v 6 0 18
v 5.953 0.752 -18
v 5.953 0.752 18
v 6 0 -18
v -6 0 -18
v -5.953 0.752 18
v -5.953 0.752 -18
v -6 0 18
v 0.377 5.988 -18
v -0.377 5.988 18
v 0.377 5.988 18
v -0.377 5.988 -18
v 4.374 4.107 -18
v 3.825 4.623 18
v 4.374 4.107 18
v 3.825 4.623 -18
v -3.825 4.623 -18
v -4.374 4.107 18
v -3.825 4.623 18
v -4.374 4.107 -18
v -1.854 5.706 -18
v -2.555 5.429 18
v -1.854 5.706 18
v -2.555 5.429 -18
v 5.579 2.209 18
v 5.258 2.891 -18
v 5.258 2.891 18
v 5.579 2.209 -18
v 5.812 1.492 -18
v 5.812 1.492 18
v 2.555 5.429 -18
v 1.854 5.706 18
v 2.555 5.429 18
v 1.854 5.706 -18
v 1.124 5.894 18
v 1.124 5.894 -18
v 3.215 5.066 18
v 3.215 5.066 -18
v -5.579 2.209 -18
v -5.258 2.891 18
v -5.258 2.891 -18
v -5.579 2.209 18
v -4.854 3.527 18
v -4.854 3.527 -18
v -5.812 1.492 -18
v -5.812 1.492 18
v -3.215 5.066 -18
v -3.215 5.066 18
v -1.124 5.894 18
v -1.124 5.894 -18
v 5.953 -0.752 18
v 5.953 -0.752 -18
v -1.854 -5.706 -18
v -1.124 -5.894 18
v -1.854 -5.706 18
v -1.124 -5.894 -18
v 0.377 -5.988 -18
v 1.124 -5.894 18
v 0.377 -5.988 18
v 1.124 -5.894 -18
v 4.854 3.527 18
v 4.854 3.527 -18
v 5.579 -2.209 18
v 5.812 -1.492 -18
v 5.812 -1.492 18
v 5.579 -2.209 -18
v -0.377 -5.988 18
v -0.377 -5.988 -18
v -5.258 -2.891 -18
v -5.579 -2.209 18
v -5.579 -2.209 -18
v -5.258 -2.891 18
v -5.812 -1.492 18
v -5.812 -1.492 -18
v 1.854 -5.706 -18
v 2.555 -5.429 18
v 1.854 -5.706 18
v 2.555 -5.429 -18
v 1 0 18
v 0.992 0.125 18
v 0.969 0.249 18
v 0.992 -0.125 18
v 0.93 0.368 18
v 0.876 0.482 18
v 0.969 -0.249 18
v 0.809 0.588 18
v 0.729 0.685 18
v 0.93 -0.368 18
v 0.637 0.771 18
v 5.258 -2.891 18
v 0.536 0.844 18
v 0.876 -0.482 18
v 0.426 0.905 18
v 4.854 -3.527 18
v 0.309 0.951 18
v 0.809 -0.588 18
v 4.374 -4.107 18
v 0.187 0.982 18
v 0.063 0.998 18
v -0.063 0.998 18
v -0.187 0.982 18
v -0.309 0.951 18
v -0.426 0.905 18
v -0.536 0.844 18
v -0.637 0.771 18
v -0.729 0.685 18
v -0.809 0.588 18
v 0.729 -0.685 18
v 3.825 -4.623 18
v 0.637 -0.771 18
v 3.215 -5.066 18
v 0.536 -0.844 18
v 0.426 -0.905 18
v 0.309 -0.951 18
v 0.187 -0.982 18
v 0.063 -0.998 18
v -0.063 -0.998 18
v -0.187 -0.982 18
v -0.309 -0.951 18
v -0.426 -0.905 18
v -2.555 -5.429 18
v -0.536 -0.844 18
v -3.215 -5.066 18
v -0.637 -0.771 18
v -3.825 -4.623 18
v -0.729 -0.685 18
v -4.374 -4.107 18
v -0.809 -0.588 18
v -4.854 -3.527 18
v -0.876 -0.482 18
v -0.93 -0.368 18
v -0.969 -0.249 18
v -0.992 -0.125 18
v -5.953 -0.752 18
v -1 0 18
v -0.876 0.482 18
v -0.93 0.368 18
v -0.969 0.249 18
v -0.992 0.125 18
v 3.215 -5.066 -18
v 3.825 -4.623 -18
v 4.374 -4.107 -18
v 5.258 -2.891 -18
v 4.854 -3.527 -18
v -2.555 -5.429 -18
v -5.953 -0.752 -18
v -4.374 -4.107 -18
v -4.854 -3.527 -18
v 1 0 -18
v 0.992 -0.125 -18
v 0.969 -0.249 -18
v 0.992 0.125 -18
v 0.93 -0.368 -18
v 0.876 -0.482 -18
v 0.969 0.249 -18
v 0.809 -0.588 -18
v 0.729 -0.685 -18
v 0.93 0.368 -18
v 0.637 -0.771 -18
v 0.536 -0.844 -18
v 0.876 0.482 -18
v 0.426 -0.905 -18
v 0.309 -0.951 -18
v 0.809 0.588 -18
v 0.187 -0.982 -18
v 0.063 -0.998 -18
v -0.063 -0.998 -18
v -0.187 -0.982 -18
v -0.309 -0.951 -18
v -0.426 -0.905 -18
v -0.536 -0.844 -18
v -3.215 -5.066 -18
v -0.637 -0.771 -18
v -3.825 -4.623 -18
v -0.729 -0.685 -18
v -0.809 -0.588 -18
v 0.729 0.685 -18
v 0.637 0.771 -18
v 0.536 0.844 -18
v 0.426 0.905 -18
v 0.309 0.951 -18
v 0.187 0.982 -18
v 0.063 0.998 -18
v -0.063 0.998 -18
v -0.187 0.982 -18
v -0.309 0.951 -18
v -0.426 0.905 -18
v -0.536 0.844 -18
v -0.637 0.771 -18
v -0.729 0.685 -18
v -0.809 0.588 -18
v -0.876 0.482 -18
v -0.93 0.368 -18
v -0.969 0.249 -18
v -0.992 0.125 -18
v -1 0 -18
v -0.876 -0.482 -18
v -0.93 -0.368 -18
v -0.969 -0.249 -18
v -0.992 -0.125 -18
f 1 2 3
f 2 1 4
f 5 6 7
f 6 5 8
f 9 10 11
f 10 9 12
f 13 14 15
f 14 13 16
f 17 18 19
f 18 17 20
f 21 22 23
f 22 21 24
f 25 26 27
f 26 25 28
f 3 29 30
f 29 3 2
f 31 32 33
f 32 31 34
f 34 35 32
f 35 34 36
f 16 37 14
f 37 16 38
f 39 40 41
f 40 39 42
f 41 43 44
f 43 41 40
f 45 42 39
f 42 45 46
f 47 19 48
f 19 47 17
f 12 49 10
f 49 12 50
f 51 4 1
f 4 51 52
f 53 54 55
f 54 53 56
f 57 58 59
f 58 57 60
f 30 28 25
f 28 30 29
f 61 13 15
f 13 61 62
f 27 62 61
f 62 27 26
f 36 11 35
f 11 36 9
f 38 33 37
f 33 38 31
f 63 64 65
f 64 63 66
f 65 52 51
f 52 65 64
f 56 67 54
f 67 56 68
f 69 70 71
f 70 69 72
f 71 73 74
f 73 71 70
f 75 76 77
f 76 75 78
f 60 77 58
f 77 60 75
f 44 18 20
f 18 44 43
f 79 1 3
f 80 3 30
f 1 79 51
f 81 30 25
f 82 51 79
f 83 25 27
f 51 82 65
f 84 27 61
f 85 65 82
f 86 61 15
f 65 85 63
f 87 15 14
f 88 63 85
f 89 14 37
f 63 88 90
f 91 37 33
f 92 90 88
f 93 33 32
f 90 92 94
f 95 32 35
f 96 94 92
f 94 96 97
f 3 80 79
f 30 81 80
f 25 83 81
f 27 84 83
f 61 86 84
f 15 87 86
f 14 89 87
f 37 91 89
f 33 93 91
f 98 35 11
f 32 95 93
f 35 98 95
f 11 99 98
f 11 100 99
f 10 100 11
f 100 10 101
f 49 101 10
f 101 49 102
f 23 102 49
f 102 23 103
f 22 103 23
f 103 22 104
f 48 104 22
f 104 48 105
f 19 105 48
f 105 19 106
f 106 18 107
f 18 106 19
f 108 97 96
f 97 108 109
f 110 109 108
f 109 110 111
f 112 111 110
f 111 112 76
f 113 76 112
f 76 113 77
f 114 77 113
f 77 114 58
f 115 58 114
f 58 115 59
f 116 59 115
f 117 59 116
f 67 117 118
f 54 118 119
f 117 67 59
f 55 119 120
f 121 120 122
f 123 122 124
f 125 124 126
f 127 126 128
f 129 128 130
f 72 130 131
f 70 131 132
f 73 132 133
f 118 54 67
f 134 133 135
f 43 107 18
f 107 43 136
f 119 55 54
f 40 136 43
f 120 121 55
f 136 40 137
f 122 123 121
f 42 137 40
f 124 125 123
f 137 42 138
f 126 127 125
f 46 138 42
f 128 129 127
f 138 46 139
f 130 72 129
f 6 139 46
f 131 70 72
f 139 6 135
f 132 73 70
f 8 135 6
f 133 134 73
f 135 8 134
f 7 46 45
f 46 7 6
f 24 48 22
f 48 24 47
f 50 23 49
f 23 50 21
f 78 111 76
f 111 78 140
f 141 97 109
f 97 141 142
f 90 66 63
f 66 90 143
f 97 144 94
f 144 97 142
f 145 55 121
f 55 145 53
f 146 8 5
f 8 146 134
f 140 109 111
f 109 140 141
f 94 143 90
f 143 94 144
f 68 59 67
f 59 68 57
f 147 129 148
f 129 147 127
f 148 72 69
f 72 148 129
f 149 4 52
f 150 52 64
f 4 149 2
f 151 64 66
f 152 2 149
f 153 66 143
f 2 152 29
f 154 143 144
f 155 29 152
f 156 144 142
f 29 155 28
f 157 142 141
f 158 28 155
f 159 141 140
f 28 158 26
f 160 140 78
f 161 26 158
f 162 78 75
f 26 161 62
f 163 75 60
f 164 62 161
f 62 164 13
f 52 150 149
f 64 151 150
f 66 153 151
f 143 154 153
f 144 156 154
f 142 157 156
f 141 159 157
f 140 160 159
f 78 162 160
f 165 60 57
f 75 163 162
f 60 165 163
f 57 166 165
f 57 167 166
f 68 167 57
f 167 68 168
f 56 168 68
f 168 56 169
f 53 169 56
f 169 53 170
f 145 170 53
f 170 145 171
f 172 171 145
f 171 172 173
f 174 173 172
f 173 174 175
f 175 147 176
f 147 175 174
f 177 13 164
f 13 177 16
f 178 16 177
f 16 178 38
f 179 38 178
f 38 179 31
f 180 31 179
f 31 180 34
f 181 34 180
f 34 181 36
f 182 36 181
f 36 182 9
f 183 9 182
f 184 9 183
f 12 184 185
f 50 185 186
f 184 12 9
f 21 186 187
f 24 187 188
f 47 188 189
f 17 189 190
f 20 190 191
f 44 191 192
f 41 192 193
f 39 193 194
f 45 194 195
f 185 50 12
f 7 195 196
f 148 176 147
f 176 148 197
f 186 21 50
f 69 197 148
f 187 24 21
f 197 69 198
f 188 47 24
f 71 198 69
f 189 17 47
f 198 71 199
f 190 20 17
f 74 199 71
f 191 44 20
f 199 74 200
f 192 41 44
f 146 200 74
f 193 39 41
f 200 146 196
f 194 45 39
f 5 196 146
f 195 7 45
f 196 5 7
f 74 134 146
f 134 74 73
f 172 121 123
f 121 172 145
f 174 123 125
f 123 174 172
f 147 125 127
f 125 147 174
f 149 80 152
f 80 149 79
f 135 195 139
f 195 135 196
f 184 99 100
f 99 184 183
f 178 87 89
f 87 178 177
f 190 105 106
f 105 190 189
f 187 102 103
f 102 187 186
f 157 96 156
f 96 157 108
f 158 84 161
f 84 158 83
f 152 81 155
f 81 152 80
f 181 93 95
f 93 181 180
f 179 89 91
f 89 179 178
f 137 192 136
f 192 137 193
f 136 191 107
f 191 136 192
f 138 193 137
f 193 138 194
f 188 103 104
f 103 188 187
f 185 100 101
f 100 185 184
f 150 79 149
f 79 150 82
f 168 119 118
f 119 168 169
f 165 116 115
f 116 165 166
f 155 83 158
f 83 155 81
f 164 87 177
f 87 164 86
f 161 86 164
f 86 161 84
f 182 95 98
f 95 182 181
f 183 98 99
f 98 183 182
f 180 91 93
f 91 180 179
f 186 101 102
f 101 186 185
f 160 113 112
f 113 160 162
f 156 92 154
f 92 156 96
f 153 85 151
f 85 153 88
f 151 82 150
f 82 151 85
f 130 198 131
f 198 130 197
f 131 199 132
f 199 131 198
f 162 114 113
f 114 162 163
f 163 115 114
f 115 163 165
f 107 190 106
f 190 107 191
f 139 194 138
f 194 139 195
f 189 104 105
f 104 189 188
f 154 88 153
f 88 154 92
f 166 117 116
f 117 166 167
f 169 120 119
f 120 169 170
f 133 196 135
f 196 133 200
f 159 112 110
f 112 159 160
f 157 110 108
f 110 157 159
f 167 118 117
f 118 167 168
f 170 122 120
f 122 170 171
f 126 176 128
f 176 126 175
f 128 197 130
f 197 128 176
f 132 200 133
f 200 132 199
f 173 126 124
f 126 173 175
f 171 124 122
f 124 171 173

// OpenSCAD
$fn = 50;


difference() {
	union() {
		translate(v = [0, 0, -18.0000000000]) {
			cylinder(h = 36, r = 6.0000000000);
		}
	}
	union() {
		translate(v = [0, 0, -100.0000000000]) {
			cylinder(h = 200, r = 1.0000000000);
		}
	}
}
